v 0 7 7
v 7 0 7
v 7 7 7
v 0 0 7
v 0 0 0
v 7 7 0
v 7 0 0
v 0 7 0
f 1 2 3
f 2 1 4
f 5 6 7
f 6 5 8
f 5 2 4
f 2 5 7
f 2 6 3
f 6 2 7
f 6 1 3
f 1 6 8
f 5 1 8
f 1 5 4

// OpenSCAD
// Vectors compare lexicographically, so [1,2] < [1,3] is true.
cube([1, 2] < [1, 3] ? 7 : 14);
